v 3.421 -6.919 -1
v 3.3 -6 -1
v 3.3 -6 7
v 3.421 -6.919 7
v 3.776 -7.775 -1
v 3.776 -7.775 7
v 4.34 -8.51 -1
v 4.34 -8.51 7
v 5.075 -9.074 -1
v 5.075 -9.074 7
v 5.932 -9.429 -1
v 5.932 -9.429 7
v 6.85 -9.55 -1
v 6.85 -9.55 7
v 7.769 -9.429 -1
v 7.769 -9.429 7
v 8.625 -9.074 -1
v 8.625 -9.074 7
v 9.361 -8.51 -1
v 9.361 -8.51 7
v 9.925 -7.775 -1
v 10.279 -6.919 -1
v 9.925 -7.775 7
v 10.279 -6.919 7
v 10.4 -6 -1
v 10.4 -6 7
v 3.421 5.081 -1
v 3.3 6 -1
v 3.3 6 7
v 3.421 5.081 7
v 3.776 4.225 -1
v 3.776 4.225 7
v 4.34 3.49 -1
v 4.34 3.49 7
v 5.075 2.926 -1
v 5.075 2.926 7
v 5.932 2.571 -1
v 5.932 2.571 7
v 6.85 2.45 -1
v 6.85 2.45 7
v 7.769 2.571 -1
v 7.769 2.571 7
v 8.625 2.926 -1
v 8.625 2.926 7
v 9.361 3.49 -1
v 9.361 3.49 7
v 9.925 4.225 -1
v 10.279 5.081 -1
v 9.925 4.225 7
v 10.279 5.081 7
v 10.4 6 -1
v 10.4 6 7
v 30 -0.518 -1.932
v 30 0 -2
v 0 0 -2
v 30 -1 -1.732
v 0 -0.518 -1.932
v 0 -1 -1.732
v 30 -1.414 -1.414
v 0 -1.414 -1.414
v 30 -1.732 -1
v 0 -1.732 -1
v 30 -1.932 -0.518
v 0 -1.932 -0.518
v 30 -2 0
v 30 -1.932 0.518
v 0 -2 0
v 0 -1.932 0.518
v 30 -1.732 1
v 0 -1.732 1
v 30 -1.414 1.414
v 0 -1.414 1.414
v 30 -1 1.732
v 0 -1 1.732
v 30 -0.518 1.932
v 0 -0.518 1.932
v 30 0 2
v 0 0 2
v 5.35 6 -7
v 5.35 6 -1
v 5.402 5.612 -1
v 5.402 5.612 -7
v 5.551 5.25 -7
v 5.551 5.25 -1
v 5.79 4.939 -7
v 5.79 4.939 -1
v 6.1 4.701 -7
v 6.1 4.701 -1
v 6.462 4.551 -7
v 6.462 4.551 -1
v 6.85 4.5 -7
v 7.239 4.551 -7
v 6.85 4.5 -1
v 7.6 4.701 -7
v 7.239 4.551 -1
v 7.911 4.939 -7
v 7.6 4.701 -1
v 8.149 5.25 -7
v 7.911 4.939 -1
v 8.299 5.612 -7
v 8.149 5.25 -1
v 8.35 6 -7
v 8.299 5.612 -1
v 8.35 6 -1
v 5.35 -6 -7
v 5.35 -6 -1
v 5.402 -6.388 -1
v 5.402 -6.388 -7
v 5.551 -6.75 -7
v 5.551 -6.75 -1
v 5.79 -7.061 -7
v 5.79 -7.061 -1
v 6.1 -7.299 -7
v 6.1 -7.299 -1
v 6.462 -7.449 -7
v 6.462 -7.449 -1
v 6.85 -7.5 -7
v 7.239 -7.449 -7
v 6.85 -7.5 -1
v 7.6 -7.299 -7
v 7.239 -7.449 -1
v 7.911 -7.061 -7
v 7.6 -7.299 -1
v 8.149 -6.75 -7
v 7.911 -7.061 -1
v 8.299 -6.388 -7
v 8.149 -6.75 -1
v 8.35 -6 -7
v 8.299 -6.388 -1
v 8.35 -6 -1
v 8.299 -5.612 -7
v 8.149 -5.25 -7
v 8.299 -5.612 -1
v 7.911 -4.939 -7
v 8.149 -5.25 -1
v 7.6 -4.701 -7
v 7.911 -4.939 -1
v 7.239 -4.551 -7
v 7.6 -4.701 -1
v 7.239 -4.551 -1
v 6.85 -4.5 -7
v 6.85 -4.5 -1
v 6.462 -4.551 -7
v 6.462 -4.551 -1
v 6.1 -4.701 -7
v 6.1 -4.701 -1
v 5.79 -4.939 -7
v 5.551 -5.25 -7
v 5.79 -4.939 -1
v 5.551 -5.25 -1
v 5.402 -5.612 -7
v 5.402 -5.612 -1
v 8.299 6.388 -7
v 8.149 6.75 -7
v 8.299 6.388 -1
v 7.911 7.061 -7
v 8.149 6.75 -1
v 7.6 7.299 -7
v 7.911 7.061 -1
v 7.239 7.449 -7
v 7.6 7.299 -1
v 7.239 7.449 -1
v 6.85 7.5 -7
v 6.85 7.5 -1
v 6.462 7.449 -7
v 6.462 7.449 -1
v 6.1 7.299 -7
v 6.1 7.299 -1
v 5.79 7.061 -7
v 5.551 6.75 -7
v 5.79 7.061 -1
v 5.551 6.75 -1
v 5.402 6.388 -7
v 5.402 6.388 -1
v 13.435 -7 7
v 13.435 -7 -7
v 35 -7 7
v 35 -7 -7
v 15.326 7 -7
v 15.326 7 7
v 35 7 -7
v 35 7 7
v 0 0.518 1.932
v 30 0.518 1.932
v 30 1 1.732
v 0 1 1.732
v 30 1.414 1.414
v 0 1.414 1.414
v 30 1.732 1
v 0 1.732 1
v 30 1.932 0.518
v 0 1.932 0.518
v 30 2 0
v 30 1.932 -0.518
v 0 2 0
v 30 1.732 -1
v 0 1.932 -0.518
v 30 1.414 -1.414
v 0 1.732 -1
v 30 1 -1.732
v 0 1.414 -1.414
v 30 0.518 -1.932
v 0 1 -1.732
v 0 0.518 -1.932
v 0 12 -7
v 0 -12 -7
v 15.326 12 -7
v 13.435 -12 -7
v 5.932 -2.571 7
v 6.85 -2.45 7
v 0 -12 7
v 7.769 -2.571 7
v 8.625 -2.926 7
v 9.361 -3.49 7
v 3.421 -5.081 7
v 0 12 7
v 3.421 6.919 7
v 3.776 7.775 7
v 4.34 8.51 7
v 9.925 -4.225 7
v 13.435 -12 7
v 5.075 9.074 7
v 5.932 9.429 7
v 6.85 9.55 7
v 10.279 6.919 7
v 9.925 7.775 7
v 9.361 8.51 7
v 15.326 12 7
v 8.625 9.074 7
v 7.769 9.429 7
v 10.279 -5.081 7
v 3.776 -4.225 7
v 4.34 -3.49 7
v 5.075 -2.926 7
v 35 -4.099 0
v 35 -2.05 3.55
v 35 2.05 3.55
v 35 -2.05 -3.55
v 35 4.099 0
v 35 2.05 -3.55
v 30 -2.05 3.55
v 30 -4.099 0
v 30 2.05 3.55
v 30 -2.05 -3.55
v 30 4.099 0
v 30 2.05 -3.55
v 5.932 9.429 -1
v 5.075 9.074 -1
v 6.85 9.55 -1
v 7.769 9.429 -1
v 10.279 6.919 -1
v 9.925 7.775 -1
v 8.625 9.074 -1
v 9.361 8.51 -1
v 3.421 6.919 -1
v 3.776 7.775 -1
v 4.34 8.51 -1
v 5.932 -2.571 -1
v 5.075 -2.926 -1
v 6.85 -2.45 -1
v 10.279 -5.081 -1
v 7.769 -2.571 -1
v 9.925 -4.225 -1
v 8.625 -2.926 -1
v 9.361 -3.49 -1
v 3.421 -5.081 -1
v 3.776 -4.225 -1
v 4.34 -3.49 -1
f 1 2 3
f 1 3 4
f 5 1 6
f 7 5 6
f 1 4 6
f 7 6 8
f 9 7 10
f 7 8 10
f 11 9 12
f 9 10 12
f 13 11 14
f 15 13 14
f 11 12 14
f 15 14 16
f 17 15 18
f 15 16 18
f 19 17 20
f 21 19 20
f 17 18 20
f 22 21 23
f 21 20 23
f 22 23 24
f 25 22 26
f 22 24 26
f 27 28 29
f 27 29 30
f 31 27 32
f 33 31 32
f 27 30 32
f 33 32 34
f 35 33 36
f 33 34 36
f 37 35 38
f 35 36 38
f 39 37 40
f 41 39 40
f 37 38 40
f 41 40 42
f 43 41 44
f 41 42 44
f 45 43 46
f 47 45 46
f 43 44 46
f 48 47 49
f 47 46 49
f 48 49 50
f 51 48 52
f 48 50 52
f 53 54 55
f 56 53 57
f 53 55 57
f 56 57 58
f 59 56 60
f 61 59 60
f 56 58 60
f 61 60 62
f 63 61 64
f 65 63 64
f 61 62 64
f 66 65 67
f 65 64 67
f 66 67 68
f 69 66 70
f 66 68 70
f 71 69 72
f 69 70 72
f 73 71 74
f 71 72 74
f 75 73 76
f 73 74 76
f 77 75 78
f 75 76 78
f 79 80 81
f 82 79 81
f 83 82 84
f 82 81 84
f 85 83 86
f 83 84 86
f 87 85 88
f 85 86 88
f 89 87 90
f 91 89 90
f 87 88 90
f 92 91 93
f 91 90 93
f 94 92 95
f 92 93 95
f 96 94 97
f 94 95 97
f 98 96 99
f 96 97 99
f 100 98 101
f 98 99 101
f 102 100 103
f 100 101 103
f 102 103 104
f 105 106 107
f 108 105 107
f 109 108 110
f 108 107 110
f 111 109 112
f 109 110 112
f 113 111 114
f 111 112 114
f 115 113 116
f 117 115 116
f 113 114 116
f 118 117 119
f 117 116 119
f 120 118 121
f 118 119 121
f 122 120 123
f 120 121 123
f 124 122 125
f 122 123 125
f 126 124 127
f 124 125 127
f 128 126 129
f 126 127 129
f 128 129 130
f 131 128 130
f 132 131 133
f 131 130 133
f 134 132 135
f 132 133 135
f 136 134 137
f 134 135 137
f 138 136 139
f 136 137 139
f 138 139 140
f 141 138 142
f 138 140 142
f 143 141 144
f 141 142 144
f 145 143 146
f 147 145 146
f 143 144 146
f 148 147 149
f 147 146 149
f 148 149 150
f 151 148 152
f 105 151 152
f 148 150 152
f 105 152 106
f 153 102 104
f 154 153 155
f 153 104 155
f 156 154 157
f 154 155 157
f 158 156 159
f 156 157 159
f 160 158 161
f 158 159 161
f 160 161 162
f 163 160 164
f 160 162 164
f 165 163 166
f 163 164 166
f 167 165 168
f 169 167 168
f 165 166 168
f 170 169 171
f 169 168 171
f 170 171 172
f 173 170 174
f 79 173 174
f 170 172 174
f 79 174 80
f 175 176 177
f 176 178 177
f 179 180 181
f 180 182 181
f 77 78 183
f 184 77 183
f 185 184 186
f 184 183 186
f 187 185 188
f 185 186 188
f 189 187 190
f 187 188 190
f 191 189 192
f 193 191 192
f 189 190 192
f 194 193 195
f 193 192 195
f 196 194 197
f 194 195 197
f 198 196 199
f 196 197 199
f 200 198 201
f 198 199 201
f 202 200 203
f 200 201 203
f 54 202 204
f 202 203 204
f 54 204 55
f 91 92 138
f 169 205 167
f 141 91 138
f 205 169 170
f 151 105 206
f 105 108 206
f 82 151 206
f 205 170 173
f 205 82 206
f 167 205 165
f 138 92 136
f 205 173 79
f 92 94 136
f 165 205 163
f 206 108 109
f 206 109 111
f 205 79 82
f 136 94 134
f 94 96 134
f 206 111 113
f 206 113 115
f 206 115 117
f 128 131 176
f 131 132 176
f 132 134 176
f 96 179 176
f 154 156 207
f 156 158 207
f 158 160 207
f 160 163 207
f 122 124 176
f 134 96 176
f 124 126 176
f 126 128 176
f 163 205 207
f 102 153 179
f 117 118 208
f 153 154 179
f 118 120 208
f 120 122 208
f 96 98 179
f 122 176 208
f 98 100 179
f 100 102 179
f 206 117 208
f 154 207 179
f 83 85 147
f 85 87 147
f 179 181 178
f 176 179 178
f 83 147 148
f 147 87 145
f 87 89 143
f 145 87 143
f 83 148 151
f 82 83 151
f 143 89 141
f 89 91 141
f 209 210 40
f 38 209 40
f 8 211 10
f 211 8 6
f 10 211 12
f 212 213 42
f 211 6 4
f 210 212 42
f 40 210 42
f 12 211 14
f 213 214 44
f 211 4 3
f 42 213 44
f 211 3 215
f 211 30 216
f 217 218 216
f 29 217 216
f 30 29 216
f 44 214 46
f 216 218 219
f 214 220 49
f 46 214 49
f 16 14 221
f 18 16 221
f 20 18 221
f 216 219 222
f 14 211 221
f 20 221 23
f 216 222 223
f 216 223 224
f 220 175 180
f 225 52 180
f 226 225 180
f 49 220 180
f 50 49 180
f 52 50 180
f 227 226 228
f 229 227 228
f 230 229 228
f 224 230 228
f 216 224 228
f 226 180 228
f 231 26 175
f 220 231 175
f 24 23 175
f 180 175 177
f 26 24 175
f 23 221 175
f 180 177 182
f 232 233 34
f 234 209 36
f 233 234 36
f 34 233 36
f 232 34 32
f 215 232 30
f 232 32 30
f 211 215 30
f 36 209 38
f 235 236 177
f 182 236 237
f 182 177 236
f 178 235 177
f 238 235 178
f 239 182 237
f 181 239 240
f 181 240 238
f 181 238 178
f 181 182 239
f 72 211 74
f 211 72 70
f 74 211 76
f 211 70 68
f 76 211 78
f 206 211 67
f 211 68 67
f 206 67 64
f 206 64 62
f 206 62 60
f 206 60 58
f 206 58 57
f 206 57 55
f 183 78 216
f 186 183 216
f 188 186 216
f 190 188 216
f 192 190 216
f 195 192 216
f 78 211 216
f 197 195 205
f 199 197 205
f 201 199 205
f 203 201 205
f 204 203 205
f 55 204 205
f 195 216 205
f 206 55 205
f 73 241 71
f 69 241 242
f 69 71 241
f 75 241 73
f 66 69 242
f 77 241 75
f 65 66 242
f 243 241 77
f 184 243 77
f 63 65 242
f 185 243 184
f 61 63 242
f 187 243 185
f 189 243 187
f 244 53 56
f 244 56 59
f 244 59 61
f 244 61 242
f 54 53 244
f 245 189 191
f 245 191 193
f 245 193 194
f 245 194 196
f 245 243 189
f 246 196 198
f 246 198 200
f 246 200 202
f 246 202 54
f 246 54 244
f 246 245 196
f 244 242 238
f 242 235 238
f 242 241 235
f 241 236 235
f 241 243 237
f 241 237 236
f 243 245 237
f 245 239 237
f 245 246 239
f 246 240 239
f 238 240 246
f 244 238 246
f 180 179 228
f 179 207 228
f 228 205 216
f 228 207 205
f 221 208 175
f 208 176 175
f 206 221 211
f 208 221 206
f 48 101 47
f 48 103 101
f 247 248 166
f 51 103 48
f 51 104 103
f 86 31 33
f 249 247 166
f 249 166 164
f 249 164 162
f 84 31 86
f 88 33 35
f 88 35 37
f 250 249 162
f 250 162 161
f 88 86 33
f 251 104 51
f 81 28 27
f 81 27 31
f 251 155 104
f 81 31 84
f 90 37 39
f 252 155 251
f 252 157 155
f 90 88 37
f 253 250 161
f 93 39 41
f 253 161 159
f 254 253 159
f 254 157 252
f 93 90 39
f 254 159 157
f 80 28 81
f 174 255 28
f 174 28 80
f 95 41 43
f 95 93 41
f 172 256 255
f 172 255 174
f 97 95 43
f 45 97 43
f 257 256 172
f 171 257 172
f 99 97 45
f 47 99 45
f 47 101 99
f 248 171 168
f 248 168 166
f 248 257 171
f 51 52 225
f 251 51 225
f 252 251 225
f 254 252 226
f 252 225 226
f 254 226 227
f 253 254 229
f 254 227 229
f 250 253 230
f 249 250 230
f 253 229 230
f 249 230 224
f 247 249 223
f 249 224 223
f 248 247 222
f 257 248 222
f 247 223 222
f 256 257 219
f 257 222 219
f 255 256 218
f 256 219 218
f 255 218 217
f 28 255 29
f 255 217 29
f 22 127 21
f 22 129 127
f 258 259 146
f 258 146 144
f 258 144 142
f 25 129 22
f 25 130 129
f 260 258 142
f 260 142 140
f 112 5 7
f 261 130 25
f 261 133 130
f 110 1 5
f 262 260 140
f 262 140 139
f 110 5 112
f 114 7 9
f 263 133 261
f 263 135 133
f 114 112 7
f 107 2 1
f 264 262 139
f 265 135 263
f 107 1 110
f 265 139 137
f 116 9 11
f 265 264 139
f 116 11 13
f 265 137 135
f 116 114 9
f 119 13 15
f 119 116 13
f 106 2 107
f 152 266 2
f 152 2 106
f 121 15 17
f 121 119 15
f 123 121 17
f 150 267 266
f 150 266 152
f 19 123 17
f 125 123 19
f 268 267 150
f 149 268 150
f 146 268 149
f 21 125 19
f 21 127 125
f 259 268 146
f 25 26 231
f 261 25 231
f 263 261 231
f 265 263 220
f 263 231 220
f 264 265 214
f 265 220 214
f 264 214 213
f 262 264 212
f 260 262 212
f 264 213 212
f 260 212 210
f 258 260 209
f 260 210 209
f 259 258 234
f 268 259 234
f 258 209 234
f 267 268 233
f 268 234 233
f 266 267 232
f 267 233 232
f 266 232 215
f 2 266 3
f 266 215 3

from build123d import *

# Parameters (mm, degrees)
ESQUISSE1_W             = 14
ESQUISSE1_H             = 14
BOSS_EXTRU_1_DEPTH      = 35
ESQUISSE2_R             = 2
ENL_V_MAT_EXTRU_1_DEPTH = 37.373066959
ENL_V_MAT_EXTRU_2_DEPTH = 5
ESQUISSE4_W             = 15.325652572
ESQUISSE4_H             = 14
BOSS_EXTRU_2_DEPTH      = 5
ESQUISSE5_W             = 13.435346111
ESQUISSE5_H             = 14
BOSS_EXTRU_3_DEPTH      = 5
ESQUISSE6_R             = 1.5
ENL_V_MAT_EXTRU_3_DEPTH = 40.56008089
ESQUISSE7_R             = 3.55
ENL_V_MAT_EXTRU_4_DEPTH = 8


with BuildPart() as part:
    # Esquisse1 → Boss.-Extru.1 (new body)
    with BuildSketch(Plane(origin=(0, 0, 0), x_dir=(0, 0, -1), z_dir=(1, 0, 0))):
        Rectangle(ESQUISSE1_W, ESQUISSE1_H)
    extrude(amount=BOSS_EXTRU_1_DEPTH)

    # Esquisse2 → Enlèv. mat.-Extru.1 (cut, through all)
    with BuildSketch(Plane.ZY):
        Circle(ESQUISSE2_R)
    extrude(amount=-ENL_V_MAT_EXTRU_1_DEPTH, mode=Mode.SUBTRACT)

    # Esquisse3 → Enlèv. mat.-Extru.2 (cut)
    with BuildSketch(Plane(origin=(35, 0, 0), x_dir=(0, 0, -1), z_dir=(1, 0, 0))):
        Polygon((3.55, -2.049593456), (3.55, 2.049593456), (0, 4.099186911), (-3.55, 2.049593456), (-3.55, -2.049593456), (0, -4.099186911), align=None)
    extrude(amount=-ENL_V_MAT_EXTRU_2_DEPTH, mode=Mode.SUBTRACT)

    # Esquisse4 → Boss.-Extru.2 (add)
    with BuildSketch(Plane(origin=(0, 7, 0), x_dir=(1, 0, 0), z_dir=(0, 1, 0))):
        with Locations((7.662826286, 0)):
            Rectangle(ESQUISSE4_W, ESQUISSE4_H)
    extrude(amount=BOSS_EXTRU_2_DEPTH)

    # Esquisse5 → Boss.-Extru.3 (add)
    with BuildSketch(Plane.XZ.offset(7)):
        with Locations((6.717673056, 0)):
            Rectangle(ESQUISSE5_W, ESQUISSE5_H)
    extrude(amount=BOSS_EXTRU_3_DEPTH)

    # Esquisse6 → Enlèv. mat.-Extru.3 (cut, through all)
    with BuildSketch(Plane.XY.offset(7)):
        with Locations((6.850460042, 6)):
            Circle(ESQUISSE6_R)
        with Locations((6.850460042, -6)):
            Circle(ESQUISSE6_R)
    extrude(amount=-ENL_V_MAT_EXTRU_3_DEPTH, mode=Mode.SUBTRACT)

    # Esquisse7 → Enlèv. mat.-Extru.4 (cut)
    with BuildSketch(Plane.XY.offset(7)):
        with Locations((6.850460042, 6)):
            Circle(ESQUISSE7_R)
        with Locations((6.850460042, -6)):
            Circle(ESQUISSE7_R)
    extrude(amount=-ENL_V_MAT_EXTRU_4_DEPTH, mode=Mode.SUBTRACT)


solid = part.part
